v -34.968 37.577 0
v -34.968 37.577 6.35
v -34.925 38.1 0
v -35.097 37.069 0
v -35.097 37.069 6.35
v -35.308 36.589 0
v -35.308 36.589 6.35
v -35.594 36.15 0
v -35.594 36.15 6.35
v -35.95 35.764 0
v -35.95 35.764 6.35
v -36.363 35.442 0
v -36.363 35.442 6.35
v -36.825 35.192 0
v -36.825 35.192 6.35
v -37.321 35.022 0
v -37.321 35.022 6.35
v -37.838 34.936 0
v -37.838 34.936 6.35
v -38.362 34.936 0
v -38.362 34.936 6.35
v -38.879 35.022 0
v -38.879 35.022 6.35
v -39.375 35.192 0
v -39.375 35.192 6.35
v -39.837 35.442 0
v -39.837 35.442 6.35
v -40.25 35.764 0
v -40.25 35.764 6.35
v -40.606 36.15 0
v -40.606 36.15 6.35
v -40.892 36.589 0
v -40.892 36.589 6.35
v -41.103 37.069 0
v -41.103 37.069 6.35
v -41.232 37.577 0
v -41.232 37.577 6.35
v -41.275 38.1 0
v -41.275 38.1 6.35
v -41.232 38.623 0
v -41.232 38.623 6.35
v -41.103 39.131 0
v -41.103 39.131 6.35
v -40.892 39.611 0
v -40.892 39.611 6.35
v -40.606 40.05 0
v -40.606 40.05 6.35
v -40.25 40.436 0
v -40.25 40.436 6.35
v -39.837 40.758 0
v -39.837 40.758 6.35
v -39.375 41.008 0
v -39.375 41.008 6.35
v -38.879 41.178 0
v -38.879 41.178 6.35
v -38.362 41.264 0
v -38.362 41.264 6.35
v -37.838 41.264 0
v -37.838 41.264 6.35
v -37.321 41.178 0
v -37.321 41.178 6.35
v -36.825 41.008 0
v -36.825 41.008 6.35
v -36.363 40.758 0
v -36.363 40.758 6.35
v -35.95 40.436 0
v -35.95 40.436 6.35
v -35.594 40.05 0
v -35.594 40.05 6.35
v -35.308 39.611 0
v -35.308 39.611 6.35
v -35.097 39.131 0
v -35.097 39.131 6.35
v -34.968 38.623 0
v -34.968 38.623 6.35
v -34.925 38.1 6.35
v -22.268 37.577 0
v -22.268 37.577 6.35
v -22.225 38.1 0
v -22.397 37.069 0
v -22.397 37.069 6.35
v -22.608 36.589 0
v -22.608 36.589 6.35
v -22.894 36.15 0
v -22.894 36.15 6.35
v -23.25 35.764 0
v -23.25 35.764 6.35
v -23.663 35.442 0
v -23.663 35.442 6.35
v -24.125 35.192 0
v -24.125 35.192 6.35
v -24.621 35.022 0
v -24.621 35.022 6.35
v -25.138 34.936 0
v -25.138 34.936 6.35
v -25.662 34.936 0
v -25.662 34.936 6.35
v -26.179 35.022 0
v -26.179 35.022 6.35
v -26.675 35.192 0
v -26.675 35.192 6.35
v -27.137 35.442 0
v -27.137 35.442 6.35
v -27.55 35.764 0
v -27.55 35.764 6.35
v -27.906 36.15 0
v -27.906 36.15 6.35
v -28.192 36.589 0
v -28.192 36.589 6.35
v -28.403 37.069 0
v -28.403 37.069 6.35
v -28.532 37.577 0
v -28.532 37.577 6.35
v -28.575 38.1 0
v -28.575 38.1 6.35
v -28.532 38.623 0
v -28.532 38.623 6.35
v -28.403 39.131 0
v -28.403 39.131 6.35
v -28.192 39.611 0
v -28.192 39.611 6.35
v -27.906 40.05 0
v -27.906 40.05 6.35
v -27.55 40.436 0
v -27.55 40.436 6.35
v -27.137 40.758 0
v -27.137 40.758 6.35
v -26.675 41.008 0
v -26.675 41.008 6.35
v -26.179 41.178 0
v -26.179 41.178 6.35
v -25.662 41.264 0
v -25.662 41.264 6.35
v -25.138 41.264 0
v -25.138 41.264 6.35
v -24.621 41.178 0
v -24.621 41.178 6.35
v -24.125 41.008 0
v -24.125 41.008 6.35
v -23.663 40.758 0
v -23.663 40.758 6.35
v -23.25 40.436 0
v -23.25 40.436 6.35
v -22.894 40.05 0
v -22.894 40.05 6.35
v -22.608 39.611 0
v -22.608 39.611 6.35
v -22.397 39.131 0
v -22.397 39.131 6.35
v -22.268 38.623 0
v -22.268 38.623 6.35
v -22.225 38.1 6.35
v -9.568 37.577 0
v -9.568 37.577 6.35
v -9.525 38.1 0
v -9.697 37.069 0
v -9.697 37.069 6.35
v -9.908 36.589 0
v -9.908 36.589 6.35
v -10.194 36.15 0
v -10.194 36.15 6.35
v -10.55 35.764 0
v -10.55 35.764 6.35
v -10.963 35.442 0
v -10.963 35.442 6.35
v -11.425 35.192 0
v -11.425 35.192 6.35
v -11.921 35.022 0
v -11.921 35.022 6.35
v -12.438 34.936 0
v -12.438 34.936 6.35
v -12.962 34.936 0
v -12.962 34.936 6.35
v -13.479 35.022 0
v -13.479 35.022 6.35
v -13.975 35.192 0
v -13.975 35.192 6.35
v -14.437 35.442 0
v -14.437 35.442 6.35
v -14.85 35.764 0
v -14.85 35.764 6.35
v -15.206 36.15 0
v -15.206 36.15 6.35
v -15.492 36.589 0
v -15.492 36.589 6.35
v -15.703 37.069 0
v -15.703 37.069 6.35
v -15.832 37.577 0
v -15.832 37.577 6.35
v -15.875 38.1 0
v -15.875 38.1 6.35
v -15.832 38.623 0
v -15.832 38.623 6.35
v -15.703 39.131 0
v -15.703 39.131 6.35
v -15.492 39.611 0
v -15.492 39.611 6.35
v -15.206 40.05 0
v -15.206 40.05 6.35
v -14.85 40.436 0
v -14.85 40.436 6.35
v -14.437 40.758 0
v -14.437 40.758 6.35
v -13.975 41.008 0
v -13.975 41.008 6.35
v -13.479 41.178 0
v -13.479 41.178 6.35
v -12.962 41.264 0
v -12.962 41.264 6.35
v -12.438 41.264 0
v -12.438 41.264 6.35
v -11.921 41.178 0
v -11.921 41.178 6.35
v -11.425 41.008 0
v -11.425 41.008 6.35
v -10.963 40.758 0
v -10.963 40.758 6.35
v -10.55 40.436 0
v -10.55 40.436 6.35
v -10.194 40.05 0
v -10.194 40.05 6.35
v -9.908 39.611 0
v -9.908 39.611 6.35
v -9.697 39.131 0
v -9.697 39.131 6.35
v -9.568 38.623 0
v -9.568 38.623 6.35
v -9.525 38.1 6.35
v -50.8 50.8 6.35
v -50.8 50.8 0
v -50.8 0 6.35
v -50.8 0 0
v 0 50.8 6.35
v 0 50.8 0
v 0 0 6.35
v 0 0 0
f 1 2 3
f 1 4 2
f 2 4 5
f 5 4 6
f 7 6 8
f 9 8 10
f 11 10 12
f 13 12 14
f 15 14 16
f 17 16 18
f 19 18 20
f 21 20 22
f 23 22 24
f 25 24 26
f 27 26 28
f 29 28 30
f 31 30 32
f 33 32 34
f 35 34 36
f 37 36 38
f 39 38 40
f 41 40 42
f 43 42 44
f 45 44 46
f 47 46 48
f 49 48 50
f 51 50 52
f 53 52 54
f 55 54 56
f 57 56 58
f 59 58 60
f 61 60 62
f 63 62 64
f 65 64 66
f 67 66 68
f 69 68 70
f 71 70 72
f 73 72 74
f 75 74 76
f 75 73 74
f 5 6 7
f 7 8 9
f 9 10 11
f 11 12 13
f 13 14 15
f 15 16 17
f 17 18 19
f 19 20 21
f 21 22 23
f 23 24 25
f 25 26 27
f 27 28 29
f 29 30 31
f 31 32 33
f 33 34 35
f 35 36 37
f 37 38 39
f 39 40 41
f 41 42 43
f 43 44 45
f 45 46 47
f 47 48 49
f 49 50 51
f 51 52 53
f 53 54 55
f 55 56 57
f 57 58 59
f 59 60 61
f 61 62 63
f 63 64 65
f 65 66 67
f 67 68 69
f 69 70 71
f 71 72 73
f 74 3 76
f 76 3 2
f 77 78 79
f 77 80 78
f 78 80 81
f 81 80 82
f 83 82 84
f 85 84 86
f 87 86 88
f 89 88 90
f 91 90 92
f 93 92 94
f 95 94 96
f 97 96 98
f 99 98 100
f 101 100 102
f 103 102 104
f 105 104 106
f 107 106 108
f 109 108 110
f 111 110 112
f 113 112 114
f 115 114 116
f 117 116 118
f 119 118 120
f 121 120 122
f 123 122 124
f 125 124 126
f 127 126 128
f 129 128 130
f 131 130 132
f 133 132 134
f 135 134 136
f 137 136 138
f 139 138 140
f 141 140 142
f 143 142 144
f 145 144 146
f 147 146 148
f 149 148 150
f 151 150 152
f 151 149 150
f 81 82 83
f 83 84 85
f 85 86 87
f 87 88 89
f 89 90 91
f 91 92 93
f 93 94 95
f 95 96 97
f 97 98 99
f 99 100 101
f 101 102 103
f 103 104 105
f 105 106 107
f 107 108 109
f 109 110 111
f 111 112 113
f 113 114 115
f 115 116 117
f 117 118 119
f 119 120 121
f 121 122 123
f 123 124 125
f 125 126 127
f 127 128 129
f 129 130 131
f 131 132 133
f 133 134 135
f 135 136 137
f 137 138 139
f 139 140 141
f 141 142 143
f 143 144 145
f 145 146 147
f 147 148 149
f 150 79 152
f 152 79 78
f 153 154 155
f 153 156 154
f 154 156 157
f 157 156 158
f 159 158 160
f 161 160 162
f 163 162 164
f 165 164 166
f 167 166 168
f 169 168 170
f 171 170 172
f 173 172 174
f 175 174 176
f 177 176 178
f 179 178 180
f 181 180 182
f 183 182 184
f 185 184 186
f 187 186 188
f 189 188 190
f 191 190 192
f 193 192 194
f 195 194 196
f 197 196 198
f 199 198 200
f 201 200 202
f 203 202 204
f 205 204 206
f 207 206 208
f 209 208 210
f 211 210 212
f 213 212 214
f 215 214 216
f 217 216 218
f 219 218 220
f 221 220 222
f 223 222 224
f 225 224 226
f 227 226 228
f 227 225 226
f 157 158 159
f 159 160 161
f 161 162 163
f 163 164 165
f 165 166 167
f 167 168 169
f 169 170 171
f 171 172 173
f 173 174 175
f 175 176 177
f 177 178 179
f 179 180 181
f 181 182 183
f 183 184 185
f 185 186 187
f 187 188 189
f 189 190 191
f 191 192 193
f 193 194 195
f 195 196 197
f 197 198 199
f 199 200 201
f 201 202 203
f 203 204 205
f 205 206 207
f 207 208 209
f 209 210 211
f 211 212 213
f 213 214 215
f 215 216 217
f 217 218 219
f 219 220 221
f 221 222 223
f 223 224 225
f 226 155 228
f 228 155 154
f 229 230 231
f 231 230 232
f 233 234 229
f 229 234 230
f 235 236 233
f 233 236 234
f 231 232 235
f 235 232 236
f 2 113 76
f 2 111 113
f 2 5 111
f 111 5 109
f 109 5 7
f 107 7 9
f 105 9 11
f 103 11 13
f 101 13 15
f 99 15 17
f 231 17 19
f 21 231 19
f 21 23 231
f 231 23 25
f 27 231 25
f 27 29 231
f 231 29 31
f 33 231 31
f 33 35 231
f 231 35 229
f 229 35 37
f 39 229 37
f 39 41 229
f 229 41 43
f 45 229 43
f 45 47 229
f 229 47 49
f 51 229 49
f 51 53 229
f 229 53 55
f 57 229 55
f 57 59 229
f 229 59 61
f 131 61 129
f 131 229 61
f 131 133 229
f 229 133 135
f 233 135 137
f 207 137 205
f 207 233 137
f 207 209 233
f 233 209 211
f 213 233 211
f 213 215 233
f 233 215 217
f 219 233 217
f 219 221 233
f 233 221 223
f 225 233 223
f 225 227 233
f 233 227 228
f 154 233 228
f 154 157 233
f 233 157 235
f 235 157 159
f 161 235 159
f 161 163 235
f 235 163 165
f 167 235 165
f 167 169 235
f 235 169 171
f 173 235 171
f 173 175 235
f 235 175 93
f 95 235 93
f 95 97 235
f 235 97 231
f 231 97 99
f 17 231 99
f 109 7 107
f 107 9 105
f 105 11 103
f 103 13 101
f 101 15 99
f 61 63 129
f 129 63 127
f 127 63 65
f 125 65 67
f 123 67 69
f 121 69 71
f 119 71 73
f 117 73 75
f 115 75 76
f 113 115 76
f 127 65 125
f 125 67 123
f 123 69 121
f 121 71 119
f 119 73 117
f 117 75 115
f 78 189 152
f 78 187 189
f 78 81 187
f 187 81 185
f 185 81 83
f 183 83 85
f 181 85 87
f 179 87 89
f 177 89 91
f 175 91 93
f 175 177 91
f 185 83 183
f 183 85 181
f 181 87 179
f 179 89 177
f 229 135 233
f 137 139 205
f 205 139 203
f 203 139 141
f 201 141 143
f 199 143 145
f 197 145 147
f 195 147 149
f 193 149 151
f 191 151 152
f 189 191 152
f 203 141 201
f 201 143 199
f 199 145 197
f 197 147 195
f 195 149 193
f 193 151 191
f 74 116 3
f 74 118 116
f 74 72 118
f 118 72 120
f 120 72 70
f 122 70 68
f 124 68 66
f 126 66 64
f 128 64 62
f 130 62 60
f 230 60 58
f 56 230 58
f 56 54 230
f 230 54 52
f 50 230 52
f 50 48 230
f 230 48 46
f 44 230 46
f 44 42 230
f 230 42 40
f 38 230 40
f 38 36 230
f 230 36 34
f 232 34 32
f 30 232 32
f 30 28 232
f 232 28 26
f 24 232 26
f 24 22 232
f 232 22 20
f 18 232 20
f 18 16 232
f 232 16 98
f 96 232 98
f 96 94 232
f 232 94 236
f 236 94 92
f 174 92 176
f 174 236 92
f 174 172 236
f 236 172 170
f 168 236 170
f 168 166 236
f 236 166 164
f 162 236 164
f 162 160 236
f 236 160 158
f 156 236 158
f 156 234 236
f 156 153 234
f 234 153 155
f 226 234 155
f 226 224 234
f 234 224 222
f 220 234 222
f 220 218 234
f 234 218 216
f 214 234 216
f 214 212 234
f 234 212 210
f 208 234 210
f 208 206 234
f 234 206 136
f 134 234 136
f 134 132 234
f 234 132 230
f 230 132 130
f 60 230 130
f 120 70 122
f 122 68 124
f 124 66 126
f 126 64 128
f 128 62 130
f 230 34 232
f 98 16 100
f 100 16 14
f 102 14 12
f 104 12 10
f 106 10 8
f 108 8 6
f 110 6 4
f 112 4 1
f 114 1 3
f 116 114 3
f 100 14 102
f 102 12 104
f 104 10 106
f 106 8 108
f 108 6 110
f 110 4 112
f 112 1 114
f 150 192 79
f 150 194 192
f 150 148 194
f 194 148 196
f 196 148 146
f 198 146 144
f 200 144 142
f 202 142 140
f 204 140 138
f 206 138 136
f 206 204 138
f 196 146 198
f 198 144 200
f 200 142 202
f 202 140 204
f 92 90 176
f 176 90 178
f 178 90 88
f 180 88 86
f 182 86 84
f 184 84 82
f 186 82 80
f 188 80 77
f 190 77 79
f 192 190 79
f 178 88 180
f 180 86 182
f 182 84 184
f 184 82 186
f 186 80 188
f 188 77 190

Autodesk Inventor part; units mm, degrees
ref_plane "YZ Plane" through (0, 0, 0) normal (1, 0, 0) x (0, 1, 0)
ref_plane "XZ Plane" through (0, 0, 0) normal (0, 1, 0) x (-1, 0, 0)
ref_plane "XY Plane" through (0, 0, 0) normal (0, 0, 1) x (1, 0, 0)
sketch "Sketch1" plane through (0, 0, 0) normal (0, 0, 1) x (1, 0, 0)
  line L0 (0, 0) -> (-50.8, 0)
  line L1 (-50.8, 0) -> (-50.8, 50.8)
  line L2 (-50.8, 50.8) -> (0, 50.8)
  line L3 (0, 50.8) -> (0, 0)
  dimension "d0" = 50.8
  dimension "d1" = 50.8
extrude "Extrusion1" add sketch "Sketch1" along normal blind 6.35
sketch "Sketch2" plane through (0, 0, 6.35) normal (0, 0, 1) x (1, 0, 0)
  line L0 (0, 50.8) -> (0, 0) projected
  line L1 (-50.8, 50.8) -> (0, 50.8) projected
  circle A0 centre (-12.7, 38.1) radius 3.175
  dimension "d4" = 12.7
  dimension "d5" = 12.7
  dimension "d6" = 6.35
extrude "Extrusion2" cut sketch "Sketch2" against normal through all
pattern_linear "Rectangular Pattern1" count 3 spacing 12.7 along (-1, 0, 0) of "Extrusion2"
properties part number "Shovel_PivotMount" material "Aluminum-6061"
